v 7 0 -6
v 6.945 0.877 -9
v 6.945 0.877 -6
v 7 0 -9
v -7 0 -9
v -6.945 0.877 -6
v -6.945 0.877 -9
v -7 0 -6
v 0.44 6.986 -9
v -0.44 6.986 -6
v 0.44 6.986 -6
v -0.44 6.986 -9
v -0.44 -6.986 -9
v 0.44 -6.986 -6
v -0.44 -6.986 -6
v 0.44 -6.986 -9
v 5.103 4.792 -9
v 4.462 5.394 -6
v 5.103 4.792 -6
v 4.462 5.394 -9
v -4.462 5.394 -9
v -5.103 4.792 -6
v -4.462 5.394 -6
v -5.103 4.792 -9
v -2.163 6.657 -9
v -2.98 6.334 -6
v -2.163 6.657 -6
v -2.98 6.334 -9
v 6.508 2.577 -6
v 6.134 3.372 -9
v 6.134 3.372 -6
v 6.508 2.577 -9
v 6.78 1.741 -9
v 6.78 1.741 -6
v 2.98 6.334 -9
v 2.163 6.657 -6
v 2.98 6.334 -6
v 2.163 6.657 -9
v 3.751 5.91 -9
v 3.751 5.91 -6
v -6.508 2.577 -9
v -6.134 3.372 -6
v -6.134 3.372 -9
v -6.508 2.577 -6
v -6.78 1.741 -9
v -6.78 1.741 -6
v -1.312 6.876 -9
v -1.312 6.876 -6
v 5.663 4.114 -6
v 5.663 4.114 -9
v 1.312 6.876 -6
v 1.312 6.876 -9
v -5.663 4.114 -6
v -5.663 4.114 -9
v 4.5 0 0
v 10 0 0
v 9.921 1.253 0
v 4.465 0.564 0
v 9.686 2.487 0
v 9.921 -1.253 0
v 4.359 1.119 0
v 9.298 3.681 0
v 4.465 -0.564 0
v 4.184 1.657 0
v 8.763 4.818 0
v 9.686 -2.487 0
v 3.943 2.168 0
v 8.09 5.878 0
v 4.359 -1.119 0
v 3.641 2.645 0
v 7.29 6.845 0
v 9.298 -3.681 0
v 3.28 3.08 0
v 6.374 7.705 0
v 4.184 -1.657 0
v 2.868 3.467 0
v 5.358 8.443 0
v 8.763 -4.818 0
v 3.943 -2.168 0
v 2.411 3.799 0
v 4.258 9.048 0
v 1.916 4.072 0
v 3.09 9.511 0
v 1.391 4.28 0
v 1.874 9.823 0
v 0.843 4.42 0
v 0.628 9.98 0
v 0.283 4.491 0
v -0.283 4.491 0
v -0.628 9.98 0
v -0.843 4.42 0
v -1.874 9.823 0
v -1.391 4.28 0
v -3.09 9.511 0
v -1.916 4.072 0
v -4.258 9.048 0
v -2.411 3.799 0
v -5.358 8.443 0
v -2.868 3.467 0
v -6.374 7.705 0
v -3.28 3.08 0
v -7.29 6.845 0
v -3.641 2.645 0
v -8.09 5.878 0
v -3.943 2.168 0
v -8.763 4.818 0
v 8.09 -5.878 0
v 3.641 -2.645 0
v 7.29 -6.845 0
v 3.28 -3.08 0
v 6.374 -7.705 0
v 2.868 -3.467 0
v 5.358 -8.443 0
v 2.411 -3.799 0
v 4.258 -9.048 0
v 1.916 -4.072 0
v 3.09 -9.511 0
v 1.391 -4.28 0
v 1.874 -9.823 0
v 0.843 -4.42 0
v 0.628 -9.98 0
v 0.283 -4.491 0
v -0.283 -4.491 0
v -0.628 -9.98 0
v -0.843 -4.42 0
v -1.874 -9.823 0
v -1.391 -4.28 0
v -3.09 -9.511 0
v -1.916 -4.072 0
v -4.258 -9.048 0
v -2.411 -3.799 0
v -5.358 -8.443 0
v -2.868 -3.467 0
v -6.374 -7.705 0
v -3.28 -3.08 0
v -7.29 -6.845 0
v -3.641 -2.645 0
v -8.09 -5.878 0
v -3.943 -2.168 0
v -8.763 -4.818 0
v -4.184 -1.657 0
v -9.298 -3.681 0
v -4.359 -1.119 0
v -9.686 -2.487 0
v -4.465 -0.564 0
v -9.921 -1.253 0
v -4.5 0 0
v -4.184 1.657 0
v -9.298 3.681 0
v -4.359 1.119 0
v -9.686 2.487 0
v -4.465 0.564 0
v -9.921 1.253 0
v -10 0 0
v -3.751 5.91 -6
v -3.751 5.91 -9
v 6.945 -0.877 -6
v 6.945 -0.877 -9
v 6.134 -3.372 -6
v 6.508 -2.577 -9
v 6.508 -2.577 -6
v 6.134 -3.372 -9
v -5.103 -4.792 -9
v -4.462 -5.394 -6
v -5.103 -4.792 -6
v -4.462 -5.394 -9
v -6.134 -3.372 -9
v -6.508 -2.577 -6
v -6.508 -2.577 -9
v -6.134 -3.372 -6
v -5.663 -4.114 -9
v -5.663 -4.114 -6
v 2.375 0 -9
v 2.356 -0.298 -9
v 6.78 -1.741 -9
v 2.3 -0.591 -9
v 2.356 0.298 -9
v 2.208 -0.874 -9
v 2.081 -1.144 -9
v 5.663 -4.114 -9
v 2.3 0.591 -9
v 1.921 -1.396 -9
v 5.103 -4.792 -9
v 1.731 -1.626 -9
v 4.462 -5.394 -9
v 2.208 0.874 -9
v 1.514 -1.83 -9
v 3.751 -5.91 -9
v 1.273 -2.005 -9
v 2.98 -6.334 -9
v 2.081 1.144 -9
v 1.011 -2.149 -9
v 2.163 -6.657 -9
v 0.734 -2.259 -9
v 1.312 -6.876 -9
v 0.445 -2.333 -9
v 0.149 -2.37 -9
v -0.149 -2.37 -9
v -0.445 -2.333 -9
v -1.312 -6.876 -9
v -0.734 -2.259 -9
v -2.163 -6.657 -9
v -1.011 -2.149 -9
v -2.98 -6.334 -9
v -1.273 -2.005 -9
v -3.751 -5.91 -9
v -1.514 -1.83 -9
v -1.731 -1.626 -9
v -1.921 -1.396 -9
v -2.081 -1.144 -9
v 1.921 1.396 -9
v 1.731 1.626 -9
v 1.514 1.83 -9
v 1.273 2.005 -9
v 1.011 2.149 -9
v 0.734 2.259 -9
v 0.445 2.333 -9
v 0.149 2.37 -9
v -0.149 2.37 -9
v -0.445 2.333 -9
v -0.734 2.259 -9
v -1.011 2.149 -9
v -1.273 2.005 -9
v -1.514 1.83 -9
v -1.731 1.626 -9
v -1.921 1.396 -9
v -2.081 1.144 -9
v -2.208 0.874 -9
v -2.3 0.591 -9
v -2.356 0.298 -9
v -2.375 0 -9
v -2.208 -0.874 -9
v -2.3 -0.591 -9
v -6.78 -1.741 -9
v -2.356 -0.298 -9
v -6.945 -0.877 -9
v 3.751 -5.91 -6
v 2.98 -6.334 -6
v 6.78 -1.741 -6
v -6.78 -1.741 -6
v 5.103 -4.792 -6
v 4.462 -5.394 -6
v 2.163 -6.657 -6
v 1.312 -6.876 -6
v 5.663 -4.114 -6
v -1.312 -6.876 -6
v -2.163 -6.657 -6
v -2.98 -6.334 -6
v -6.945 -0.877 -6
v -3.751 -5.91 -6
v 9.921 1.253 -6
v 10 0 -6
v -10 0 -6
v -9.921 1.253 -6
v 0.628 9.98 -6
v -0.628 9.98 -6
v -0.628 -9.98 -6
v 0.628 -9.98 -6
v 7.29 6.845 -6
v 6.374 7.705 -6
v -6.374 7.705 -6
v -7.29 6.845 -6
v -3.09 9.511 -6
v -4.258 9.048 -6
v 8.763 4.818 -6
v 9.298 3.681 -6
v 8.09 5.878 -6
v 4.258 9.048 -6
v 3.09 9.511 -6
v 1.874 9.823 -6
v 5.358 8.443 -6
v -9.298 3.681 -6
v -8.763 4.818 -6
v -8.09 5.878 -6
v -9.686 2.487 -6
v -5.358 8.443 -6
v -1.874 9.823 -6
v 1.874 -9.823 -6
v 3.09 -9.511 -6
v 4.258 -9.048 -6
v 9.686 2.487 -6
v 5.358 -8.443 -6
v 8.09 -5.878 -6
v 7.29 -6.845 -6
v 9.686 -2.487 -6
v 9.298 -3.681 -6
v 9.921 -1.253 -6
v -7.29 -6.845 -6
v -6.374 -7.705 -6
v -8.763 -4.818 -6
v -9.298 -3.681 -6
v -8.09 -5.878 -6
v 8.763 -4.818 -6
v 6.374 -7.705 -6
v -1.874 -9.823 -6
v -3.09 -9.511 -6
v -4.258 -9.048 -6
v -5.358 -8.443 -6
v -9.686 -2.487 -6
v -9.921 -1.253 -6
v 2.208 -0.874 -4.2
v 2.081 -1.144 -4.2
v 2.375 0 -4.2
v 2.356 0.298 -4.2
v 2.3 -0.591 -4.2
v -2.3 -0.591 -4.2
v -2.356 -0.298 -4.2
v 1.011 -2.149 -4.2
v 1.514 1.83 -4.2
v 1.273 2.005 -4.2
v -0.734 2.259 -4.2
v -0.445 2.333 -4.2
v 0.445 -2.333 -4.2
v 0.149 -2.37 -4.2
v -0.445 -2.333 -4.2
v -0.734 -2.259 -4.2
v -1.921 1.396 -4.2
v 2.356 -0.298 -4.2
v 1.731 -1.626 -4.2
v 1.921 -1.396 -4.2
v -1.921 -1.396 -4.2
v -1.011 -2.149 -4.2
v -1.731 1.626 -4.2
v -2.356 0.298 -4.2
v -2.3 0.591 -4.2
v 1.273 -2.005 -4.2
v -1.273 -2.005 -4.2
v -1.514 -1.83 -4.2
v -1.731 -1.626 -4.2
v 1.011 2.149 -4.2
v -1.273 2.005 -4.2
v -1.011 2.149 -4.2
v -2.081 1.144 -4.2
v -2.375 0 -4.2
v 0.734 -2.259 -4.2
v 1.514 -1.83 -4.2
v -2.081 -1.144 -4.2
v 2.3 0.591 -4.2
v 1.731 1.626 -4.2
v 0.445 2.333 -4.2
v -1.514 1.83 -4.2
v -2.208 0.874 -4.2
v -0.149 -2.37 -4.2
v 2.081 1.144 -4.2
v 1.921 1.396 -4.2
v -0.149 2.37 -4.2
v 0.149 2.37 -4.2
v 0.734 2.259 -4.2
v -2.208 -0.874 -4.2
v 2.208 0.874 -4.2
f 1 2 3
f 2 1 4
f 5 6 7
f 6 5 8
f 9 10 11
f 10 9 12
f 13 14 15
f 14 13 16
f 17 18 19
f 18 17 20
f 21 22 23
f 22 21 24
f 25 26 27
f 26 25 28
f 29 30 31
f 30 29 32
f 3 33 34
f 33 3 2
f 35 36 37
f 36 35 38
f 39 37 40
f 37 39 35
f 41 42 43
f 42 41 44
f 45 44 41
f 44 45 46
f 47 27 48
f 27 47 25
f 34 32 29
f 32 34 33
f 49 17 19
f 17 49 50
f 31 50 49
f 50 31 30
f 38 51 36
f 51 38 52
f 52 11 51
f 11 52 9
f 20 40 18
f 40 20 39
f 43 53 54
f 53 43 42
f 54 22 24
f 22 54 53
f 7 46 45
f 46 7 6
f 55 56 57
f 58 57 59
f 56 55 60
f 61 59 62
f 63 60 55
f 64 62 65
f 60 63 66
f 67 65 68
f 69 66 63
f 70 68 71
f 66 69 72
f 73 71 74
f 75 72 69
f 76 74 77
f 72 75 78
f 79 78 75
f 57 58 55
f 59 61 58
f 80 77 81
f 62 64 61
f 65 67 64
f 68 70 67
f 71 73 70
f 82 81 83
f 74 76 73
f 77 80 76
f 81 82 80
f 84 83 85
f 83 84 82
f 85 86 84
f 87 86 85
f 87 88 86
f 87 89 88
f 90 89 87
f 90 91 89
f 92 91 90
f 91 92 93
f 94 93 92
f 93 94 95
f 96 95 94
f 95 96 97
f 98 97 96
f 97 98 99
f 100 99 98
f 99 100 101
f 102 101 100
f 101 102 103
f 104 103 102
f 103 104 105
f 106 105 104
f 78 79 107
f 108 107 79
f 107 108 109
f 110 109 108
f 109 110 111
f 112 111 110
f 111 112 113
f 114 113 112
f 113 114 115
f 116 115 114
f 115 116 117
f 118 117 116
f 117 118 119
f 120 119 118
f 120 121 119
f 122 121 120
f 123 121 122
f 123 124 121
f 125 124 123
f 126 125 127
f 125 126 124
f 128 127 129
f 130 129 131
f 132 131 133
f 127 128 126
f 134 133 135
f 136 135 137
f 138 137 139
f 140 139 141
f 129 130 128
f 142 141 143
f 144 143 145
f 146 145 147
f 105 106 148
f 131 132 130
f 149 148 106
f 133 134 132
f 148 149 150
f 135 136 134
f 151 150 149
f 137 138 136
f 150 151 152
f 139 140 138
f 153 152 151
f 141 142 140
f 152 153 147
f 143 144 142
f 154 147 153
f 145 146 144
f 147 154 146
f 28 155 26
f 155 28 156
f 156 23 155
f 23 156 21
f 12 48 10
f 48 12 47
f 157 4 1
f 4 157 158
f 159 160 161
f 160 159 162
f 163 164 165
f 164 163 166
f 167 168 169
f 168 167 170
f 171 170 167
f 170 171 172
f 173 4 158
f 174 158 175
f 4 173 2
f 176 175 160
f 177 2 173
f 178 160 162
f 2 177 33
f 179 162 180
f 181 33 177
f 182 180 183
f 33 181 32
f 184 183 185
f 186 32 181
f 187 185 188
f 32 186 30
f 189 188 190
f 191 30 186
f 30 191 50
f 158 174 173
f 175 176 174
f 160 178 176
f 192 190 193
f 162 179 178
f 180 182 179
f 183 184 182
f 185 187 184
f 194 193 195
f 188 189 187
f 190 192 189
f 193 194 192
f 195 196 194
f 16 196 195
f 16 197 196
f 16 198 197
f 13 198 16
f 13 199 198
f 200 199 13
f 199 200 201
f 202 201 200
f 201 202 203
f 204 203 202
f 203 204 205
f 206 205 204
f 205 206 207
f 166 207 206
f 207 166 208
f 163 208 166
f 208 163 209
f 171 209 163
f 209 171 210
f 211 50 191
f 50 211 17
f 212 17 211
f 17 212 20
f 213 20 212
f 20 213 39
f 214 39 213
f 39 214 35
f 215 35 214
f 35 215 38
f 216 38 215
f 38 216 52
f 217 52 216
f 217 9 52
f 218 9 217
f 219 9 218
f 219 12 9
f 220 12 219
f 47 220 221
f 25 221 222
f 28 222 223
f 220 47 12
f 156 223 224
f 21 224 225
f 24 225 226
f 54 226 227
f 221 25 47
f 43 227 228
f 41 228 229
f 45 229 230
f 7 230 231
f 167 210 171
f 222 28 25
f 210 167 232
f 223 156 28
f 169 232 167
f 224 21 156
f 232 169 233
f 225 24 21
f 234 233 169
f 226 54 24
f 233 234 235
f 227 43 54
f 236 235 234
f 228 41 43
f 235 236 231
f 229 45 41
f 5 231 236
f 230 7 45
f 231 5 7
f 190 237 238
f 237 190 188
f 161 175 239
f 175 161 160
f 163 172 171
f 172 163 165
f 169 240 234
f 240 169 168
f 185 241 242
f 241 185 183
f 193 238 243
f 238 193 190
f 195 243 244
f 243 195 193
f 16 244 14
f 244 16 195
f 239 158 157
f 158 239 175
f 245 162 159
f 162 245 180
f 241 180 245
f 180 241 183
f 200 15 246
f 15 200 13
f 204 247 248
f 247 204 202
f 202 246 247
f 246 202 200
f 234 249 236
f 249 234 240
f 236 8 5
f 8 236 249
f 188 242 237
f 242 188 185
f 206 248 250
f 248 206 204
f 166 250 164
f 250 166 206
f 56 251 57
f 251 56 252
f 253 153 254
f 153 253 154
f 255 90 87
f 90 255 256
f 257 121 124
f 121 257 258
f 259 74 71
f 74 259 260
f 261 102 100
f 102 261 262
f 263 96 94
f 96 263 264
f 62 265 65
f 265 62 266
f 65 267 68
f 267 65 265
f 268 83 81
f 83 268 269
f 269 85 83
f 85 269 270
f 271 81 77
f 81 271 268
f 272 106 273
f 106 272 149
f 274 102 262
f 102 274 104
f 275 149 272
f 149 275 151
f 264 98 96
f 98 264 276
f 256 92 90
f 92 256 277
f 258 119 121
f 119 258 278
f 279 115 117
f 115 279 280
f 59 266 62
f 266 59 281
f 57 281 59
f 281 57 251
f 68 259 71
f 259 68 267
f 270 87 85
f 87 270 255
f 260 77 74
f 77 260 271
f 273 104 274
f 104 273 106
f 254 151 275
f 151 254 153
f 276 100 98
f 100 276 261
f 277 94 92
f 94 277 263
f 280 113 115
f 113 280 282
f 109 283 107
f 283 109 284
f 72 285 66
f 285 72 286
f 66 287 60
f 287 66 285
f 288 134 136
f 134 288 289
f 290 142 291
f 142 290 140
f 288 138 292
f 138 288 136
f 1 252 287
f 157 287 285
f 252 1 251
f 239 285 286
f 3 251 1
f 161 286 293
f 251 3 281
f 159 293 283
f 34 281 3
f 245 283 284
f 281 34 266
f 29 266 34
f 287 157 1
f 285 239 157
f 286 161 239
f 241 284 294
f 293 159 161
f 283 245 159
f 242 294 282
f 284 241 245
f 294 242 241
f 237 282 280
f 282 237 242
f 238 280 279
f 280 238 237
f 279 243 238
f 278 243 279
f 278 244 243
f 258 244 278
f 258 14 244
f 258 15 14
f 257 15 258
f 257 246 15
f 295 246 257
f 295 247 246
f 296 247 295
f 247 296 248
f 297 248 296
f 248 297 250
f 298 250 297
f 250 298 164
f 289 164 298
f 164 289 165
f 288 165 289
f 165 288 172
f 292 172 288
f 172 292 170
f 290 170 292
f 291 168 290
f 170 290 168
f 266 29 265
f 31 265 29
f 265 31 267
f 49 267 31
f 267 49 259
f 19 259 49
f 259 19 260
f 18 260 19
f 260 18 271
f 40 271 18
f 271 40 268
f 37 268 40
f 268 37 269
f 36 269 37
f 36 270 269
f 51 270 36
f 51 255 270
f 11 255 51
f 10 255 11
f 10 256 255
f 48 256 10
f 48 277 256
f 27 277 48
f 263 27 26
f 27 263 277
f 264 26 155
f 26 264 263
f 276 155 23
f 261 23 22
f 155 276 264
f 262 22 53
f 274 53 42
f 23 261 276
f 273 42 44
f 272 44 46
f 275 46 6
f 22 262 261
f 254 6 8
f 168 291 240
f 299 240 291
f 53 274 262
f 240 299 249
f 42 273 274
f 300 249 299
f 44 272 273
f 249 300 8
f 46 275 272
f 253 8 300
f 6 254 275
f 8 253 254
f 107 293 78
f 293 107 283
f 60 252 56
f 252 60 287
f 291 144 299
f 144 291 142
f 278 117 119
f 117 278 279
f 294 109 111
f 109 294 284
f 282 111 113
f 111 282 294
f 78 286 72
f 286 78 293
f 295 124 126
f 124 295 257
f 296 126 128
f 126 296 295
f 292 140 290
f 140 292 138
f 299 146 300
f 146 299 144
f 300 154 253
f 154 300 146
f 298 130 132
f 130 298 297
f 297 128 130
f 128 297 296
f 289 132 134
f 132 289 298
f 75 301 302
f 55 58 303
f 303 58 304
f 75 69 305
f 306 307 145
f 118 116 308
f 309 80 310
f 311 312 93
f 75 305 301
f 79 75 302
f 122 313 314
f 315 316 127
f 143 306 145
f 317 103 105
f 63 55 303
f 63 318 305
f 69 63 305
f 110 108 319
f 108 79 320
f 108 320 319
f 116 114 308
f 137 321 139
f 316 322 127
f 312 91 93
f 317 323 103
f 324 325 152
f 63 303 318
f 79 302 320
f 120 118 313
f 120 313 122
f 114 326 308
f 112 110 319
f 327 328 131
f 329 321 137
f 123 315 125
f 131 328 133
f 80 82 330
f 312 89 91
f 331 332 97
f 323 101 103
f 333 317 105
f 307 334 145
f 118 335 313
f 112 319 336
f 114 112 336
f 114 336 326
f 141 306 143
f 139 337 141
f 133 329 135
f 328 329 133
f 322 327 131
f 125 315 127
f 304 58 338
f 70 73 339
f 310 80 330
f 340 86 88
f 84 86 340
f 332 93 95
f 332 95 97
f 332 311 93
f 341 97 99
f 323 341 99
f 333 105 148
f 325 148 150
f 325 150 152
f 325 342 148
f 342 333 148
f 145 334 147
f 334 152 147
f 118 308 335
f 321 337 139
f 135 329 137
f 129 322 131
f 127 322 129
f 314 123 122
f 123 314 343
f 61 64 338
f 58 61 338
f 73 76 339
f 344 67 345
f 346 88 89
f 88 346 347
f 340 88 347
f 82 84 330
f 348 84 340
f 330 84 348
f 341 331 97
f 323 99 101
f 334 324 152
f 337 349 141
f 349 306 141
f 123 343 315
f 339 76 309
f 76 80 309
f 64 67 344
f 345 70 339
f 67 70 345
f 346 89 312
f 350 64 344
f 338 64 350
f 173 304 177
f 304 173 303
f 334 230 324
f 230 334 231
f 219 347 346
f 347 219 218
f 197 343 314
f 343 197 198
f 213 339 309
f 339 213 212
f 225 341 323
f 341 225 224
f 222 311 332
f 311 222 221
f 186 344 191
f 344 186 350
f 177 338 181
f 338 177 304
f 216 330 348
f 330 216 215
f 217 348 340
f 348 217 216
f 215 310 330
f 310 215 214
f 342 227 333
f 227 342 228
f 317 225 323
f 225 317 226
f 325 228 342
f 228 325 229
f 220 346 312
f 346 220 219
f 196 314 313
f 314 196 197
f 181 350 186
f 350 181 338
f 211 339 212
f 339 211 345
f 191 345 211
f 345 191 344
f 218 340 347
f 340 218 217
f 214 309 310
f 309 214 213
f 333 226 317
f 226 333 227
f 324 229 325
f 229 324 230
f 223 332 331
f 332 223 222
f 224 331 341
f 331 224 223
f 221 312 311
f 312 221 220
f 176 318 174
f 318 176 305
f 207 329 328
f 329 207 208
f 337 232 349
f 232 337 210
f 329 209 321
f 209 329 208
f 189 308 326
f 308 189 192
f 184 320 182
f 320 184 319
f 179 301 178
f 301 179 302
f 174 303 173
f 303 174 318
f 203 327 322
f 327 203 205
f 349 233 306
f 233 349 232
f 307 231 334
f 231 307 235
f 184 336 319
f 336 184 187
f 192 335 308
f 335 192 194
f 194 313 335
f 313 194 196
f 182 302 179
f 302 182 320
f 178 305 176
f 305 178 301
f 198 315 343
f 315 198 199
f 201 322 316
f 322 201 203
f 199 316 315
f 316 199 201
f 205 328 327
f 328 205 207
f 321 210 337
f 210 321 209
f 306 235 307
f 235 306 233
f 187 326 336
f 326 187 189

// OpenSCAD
$fn = 50;


difference() {
	union() {
		translate(v = [0, 0, -9.0000000000]) {
			cylinder(h = 9, r = 7.0000000000);
		}
		translate(v = [0, 0, -6.0000000000]) {
			cylinder(h = 6, r = 10.0000000000);
		}
	}
	union() {
		translate(v = [0, 0, 0]) {
			rotate(a = [0, 0, 0]) {
				difference() {
					union() {
						#translate(v = [0, 0, -9.0000000000]) {
							cylinder(h = 9, r = 2.2500000000);
						}
						#translate(v = [0, 0, -4.2000000000]) {
							cylinder(h = 4.2000000000, r1 = 2.3750000000, r2 = 4.5000000000);
						}
						#translate(v = [0, 0, -9.0000000000]) {
							cylinder(h = 9, r = 2.3750000000);
						}
						#translate(v = [0, 0, -9.0000000000]) {
							cylinder(h = 9, r = 2.2500000000);
						}
					}
					union();
				}
			}
		}
	}
}
